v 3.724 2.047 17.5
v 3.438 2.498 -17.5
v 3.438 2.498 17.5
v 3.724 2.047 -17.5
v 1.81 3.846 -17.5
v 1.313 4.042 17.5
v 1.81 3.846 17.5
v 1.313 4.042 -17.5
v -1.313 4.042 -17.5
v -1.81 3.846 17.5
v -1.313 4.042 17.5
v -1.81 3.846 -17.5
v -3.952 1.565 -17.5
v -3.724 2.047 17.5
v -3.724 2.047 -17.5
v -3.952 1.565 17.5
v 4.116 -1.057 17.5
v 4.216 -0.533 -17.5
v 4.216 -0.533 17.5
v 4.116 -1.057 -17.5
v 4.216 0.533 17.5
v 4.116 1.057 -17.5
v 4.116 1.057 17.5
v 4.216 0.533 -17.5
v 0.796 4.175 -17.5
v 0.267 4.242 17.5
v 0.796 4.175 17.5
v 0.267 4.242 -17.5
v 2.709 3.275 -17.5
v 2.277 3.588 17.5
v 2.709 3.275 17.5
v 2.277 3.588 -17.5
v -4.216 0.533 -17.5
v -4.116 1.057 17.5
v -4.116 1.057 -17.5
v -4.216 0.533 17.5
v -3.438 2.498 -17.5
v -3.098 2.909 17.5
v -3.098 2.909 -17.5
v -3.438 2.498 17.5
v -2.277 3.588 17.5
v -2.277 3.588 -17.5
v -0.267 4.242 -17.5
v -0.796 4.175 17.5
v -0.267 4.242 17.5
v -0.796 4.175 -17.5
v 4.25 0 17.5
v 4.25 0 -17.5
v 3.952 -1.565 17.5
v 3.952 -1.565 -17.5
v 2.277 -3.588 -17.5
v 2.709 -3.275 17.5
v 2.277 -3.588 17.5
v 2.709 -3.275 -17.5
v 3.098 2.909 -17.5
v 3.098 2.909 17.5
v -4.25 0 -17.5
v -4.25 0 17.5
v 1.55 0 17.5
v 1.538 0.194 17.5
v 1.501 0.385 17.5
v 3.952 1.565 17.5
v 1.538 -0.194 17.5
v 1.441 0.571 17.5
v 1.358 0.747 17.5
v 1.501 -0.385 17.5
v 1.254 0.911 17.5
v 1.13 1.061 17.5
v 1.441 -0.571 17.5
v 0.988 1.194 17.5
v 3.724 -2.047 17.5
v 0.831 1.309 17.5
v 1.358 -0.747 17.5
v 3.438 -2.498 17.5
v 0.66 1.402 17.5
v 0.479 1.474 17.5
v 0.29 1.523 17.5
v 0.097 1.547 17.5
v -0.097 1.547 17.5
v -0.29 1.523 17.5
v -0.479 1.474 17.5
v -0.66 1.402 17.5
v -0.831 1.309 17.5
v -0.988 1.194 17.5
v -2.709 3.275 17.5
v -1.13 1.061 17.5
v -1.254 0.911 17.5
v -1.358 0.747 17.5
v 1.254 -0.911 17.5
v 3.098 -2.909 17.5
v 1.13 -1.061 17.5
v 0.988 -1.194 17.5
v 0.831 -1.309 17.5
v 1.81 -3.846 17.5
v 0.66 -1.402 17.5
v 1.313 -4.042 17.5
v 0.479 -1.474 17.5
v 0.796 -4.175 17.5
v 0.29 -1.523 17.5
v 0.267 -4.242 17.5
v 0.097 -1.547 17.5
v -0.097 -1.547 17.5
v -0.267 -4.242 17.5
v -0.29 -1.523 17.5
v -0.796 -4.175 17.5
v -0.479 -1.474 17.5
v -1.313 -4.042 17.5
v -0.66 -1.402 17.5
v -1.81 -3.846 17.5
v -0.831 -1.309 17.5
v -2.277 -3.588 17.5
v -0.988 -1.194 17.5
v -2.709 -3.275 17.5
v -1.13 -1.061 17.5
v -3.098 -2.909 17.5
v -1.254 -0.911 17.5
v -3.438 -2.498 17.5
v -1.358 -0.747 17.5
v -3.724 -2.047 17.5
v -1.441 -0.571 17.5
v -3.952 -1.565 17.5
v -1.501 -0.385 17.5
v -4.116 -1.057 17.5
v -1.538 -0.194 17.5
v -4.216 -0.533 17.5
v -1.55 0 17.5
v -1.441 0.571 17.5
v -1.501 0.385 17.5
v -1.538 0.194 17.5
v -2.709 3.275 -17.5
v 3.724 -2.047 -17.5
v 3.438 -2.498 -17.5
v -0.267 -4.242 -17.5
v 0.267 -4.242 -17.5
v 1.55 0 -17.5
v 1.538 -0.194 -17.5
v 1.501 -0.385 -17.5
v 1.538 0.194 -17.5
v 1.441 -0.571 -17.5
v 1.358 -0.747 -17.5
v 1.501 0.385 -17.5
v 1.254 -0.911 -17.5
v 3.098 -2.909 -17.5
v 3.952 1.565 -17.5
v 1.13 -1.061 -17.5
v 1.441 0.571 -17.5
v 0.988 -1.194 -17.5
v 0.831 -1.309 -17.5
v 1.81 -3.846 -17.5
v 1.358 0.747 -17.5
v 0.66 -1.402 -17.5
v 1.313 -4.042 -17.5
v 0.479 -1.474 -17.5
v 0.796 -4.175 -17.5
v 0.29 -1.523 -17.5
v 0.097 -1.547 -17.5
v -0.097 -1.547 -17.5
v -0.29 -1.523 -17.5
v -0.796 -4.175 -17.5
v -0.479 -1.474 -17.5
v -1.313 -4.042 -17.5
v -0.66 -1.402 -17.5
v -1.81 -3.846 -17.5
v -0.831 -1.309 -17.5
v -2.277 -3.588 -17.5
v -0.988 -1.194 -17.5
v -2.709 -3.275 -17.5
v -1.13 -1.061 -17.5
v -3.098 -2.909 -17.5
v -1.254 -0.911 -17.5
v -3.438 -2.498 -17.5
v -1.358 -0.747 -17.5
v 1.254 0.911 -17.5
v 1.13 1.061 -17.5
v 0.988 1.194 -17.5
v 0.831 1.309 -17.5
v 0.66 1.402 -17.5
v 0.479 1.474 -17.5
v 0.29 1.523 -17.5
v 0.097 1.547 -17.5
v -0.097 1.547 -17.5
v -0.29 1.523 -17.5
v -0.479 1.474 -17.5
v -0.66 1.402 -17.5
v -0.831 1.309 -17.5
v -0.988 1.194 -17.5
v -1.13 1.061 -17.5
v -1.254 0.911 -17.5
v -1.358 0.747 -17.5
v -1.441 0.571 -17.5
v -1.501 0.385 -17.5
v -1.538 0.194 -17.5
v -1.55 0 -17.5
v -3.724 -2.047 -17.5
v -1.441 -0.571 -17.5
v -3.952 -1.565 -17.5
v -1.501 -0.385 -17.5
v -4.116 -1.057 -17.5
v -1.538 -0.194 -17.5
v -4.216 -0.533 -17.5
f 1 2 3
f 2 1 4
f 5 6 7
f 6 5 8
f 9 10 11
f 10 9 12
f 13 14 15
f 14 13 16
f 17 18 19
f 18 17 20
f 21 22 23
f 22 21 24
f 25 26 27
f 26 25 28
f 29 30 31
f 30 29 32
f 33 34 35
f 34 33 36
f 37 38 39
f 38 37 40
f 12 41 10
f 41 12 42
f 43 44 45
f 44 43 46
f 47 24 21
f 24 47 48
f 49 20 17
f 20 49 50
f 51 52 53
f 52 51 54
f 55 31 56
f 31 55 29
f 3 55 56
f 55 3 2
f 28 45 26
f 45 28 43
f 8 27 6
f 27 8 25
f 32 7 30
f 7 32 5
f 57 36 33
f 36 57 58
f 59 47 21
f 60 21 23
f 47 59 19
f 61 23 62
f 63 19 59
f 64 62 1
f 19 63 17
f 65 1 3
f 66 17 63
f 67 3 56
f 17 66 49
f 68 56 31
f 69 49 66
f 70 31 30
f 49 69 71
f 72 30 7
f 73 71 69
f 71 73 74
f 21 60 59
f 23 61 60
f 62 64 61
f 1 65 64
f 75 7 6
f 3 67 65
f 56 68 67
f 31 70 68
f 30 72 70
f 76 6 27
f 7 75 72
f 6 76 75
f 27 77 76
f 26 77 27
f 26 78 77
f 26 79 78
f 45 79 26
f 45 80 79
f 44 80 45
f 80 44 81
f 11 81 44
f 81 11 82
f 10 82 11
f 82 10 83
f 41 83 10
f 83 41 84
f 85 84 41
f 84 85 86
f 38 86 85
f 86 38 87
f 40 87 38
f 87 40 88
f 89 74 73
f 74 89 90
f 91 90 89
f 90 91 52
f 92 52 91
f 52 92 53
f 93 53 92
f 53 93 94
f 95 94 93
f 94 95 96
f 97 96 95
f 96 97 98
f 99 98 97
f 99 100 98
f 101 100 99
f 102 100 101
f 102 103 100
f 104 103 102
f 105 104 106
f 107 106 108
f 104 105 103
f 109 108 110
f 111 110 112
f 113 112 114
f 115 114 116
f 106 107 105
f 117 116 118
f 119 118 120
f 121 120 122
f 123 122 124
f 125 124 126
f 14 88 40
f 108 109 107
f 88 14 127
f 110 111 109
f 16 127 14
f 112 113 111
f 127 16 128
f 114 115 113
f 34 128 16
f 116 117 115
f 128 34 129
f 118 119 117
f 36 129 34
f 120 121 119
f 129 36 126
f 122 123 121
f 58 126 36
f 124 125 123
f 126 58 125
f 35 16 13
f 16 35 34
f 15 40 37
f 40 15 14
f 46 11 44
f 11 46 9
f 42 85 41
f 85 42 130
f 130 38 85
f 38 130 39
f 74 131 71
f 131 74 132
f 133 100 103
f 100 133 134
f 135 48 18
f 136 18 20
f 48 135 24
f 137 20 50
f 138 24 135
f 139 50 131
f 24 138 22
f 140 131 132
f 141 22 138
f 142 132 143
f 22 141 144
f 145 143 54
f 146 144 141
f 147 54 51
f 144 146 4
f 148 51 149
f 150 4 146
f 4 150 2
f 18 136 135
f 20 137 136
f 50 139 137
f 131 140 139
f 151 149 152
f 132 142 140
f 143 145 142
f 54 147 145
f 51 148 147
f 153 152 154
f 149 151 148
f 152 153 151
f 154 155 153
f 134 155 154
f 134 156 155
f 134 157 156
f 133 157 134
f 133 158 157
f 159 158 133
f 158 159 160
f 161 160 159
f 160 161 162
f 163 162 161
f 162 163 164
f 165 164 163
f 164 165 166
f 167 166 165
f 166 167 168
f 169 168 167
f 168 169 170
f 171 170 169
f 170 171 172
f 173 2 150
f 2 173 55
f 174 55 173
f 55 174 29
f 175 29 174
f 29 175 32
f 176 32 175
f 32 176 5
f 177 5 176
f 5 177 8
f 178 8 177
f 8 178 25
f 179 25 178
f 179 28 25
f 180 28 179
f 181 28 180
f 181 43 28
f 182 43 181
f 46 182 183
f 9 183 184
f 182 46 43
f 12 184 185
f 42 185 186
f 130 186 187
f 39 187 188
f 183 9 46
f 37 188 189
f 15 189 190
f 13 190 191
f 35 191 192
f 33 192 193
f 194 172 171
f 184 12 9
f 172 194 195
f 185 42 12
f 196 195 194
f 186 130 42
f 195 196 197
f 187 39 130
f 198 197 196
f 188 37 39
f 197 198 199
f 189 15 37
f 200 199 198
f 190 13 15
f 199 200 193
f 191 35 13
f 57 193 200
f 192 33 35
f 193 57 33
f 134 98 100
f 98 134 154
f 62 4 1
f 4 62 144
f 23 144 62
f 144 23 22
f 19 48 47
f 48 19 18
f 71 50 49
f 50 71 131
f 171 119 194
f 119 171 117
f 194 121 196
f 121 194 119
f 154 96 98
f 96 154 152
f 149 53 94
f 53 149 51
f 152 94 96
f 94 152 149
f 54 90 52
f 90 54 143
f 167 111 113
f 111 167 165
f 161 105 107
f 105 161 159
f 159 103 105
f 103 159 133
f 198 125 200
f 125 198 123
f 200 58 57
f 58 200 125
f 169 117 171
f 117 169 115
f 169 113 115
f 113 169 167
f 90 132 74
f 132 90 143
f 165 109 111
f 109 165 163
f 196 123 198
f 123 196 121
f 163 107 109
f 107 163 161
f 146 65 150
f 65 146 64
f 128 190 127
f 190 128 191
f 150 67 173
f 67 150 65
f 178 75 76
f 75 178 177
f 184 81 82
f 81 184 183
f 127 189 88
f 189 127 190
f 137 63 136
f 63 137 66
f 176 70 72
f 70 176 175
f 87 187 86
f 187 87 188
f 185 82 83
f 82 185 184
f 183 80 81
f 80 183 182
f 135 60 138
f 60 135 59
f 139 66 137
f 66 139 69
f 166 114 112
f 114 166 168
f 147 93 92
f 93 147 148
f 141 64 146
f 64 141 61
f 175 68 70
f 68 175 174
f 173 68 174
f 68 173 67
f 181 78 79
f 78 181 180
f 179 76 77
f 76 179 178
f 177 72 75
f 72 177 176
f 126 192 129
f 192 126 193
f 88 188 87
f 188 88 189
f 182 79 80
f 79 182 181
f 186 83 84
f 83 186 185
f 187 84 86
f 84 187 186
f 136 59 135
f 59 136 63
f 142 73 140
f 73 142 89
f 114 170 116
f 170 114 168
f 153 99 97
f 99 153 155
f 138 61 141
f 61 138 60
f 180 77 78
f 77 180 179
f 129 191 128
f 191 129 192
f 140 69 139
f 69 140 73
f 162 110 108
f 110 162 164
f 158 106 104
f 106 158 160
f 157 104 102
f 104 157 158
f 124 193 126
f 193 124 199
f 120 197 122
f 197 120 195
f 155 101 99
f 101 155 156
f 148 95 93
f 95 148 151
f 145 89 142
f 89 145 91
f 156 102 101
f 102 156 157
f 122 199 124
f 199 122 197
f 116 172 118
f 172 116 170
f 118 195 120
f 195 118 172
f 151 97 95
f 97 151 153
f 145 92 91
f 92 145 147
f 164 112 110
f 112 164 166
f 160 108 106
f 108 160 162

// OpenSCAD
$fn = 50;


difference() {
	union() {
		translate(v = [0, 0, -17.5000000000]) {
			cylinder(h = 35, r = 4.2500000000);
		}
	}
	union() {
		translate(v = [0, 0, -100.0000000000]) {
			cylinder(h = 200, r = 1.5500000000);
		}
	}
}
